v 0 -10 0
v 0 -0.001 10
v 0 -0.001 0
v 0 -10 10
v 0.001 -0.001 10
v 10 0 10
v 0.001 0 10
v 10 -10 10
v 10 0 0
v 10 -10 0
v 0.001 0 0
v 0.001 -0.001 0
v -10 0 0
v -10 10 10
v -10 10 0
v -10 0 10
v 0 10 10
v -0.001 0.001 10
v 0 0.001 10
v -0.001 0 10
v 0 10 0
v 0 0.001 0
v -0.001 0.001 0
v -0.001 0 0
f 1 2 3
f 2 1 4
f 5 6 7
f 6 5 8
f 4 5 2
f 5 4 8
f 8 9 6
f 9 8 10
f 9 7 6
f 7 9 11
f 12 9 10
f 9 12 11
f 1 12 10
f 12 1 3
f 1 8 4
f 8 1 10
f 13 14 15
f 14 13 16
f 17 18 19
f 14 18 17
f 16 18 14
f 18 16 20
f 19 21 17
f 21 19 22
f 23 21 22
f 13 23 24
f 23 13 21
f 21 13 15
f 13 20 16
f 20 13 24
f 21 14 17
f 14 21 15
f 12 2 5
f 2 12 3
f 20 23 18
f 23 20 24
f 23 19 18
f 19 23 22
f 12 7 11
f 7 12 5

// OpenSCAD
//-------------------------------------------------------------------------------------------
// CubeBicolorRed
//-------------------------------------------------------------------------------------------
$fn=10;

translate([-5, -5, 5]) 
difference(){
union() {
  //color("White") translate([0, 0, 0]) cube([10,10,10], center = true);
  color("red") translate([10, 0, 0]) cube([10,10,10], center = true);
  color("red") translate([0, 10, 0]) cube([10,10,10], center = true);
  //color("White") translate([10, 10, 0]) cube([10,10,10], center = true);
}
translate([5, 5, 0]) cylinder(r=0.001,h=20, center = true);
}
